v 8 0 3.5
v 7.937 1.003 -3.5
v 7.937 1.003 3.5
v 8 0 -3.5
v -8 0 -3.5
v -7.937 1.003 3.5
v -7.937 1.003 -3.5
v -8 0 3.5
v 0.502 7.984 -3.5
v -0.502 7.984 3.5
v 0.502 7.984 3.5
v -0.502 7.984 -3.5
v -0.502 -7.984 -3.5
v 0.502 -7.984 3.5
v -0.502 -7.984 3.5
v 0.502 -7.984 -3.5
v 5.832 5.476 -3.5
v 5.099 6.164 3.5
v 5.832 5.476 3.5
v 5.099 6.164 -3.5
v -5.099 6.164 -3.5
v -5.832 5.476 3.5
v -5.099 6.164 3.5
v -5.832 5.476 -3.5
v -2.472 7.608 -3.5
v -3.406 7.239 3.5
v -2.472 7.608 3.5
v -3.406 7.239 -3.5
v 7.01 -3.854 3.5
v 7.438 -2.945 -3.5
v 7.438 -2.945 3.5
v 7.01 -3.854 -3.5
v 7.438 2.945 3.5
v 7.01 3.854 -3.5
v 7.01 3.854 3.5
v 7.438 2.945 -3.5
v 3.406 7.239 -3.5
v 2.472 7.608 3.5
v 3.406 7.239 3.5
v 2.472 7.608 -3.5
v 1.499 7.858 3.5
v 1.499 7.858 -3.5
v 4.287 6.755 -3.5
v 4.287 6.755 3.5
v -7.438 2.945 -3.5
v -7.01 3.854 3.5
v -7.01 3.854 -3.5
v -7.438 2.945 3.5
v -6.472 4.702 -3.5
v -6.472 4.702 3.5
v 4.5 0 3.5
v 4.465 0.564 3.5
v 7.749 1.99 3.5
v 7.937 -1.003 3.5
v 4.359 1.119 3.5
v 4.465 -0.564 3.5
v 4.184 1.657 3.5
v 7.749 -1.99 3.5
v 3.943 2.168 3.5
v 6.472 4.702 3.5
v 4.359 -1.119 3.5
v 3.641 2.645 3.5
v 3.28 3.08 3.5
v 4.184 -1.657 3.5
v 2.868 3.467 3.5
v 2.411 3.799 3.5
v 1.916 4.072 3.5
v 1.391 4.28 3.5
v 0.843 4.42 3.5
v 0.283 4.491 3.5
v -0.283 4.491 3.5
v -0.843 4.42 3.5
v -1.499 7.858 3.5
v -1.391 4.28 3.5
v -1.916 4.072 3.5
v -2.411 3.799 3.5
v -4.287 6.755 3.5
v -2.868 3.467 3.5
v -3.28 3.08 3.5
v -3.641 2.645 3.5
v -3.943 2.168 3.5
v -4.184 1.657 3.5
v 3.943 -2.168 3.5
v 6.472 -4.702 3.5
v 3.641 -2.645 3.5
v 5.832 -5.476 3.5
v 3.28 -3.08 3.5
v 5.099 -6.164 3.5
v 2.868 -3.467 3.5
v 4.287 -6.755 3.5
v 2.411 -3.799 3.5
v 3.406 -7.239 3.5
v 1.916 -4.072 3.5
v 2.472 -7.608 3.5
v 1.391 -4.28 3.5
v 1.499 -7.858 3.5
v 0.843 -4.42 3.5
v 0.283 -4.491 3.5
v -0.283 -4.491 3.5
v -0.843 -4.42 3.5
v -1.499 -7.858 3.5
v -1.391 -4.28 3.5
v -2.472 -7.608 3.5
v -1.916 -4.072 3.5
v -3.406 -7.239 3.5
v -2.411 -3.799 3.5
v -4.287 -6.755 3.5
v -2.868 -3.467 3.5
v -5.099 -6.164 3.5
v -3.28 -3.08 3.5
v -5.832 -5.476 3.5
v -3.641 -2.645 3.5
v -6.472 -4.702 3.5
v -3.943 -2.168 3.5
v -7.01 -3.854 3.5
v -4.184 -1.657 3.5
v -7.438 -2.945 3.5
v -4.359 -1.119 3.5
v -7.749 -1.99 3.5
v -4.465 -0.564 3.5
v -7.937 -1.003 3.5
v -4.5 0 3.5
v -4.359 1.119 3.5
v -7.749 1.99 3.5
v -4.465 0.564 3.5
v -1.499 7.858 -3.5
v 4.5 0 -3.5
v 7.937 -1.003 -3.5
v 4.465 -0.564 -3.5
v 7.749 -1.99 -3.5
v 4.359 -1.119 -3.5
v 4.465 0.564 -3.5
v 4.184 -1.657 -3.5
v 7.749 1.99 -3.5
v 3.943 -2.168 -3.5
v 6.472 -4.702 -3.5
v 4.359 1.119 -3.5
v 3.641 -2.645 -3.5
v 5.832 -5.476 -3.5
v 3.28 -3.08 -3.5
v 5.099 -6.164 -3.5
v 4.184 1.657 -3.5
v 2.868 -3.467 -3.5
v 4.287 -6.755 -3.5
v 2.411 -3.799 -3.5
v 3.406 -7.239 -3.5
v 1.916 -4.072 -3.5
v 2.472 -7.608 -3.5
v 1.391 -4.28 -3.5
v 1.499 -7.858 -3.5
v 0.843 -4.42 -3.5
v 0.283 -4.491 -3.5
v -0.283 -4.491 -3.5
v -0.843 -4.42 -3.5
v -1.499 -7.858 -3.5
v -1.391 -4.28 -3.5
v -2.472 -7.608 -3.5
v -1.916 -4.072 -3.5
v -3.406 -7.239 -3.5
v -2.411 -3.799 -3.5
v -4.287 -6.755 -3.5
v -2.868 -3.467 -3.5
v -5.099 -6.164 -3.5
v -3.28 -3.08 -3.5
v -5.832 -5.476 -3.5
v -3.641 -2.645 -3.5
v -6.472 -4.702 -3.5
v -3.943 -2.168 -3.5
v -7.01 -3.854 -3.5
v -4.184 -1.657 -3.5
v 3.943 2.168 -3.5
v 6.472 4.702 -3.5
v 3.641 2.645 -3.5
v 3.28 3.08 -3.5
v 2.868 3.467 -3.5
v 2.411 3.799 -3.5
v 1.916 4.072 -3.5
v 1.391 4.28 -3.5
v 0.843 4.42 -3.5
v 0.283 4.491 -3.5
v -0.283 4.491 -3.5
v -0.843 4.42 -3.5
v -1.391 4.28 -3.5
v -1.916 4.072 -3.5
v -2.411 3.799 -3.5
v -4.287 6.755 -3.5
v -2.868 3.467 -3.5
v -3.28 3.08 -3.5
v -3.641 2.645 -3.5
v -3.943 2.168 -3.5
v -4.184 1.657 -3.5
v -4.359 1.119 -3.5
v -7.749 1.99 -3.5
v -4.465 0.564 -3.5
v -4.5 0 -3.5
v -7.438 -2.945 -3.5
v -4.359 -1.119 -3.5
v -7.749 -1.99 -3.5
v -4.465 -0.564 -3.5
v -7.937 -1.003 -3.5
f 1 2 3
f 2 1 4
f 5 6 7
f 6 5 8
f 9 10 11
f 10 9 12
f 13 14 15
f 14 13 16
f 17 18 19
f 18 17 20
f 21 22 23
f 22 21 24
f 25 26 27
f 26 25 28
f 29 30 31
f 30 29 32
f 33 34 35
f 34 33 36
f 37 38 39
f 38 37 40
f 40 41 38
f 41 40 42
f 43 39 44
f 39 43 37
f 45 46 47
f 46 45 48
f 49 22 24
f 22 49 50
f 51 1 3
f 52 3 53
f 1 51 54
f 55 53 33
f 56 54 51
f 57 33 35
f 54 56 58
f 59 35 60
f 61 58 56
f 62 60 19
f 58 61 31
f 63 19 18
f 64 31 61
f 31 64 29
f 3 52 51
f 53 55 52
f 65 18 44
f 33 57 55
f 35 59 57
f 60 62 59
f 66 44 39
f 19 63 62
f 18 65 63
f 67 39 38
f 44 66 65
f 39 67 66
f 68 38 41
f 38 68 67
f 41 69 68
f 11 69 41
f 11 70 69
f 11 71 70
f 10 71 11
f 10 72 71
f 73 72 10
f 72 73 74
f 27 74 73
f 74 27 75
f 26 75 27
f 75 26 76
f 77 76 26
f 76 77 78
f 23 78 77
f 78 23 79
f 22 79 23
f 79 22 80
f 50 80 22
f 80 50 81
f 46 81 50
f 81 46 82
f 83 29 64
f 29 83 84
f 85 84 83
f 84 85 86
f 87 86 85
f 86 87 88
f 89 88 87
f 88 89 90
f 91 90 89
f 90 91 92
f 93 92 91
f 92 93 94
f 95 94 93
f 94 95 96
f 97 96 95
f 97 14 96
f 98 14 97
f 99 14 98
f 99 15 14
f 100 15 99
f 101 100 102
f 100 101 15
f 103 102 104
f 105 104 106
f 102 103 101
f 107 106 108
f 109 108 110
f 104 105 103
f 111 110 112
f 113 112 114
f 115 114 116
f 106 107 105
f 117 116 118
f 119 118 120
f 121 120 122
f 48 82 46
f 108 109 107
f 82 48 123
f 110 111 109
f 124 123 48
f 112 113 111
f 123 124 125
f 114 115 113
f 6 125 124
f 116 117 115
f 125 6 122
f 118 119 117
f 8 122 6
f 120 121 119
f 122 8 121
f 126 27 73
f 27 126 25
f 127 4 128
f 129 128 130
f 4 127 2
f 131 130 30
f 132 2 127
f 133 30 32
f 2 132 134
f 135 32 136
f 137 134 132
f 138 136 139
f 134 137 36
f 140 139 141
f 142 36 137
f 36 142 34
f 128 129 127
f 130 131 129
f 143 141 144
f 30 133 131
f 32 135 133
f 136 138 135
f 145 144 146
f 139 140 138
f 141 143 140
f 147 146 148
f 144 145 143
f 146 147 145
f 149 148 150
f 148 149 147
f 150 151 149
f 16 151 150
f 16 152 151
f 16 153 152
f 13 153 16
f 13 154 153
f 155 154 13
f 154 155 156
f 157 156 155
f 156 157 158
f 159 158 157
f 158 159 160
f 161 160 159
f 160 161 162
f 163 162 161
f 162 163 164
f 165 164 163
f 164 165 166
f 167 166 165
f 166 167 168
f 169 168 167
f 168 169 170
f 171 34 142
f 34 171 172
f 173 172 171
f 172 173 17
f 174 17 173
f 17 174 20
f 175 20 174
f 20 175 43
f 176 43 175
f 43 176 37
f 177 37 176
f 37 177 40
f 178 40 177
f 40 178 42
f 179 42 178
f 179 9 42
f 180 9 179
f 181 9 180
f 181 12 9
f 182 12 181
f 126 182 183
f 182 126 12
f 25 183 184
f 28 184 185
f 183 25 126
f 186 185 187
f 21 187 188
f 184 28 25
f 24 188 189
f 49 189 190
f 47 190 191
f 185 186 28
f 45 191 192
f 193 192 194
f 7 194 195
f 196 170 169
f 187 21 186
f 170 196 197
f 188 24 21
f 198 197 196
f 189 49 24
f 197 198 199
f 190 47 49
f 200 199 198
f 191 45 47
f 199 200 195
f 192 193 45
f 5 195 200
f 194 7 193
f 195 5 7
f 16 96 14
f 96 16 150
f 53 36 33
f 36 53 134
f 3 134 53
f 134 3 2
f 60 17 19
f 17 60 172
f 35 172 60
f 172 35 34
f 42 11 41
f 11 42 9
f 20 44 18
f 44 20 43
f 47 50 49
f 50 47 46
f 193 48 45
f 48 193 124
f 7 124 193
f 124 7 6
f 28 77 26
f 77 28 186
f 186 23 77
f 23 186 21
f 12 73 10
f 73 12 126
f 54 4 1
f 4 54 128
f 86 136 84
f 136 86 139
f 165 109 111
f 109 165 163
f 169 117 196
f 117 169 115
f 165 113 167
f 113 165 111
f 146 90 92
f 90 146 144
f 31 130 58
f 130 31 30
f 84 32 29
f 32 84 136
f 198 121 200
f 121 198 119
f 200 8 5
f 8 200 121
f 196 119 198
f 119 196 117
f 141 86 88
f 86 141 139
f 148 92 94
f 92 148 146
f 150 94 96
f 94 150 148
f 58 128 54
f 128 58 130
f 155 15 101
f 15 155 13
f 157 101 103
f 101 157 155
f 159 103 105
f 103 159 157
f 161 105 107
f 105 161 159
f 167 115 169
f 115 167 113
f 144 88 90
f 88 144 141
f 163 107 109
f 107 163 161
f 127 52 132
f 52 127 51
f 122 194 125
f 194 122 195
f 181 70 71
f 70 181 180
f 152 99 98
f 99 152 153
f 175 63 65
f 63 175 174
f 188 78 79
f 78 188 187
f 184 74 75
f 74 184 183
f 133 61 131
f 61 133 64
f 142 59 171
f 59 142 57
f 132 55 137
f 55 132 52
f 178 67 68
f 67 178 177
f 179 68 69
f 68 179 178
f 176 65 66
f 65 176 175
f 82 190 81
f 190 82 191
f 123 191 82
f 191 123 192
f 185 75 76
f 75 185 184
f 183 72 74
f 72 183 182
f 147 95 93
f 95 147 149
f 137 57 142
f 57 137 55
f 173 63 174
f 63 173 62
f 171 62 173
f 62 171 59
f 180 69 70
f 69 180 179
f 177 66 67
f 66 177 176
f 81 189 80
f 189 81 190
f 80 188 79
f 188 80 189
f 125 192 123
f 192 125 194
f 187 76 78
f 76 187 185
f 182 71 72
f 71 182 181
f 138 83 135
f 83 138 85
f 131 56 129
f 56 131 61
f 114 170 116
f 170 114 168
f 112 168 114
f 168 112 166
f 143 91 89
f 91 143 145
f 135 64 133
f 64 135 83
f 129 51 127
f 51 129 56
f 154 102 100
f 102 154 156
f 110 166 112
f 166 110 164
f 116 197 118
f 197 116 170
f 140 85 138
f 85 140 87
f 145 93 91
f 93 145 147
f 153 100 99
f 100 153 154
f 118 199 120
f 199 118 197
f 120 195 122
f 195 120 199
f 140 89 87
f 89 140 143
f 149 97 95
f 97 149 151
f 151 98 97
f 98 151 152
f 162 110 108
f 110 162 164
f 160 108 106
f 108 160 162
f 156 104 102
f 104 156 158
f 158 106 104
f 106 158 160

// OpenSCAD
$fn = 50;


difference() {
	union() {
		translate(v = [0, 0, -3.5000000000]) {
			cylinder(h = 7, r = 8.0000000000);
		}
	}
	union() {
		translate(v = [0, 0, -100.0000000000]) {
			cylinder(h = 200, r = 4.5000000000);
		}
	}
}
